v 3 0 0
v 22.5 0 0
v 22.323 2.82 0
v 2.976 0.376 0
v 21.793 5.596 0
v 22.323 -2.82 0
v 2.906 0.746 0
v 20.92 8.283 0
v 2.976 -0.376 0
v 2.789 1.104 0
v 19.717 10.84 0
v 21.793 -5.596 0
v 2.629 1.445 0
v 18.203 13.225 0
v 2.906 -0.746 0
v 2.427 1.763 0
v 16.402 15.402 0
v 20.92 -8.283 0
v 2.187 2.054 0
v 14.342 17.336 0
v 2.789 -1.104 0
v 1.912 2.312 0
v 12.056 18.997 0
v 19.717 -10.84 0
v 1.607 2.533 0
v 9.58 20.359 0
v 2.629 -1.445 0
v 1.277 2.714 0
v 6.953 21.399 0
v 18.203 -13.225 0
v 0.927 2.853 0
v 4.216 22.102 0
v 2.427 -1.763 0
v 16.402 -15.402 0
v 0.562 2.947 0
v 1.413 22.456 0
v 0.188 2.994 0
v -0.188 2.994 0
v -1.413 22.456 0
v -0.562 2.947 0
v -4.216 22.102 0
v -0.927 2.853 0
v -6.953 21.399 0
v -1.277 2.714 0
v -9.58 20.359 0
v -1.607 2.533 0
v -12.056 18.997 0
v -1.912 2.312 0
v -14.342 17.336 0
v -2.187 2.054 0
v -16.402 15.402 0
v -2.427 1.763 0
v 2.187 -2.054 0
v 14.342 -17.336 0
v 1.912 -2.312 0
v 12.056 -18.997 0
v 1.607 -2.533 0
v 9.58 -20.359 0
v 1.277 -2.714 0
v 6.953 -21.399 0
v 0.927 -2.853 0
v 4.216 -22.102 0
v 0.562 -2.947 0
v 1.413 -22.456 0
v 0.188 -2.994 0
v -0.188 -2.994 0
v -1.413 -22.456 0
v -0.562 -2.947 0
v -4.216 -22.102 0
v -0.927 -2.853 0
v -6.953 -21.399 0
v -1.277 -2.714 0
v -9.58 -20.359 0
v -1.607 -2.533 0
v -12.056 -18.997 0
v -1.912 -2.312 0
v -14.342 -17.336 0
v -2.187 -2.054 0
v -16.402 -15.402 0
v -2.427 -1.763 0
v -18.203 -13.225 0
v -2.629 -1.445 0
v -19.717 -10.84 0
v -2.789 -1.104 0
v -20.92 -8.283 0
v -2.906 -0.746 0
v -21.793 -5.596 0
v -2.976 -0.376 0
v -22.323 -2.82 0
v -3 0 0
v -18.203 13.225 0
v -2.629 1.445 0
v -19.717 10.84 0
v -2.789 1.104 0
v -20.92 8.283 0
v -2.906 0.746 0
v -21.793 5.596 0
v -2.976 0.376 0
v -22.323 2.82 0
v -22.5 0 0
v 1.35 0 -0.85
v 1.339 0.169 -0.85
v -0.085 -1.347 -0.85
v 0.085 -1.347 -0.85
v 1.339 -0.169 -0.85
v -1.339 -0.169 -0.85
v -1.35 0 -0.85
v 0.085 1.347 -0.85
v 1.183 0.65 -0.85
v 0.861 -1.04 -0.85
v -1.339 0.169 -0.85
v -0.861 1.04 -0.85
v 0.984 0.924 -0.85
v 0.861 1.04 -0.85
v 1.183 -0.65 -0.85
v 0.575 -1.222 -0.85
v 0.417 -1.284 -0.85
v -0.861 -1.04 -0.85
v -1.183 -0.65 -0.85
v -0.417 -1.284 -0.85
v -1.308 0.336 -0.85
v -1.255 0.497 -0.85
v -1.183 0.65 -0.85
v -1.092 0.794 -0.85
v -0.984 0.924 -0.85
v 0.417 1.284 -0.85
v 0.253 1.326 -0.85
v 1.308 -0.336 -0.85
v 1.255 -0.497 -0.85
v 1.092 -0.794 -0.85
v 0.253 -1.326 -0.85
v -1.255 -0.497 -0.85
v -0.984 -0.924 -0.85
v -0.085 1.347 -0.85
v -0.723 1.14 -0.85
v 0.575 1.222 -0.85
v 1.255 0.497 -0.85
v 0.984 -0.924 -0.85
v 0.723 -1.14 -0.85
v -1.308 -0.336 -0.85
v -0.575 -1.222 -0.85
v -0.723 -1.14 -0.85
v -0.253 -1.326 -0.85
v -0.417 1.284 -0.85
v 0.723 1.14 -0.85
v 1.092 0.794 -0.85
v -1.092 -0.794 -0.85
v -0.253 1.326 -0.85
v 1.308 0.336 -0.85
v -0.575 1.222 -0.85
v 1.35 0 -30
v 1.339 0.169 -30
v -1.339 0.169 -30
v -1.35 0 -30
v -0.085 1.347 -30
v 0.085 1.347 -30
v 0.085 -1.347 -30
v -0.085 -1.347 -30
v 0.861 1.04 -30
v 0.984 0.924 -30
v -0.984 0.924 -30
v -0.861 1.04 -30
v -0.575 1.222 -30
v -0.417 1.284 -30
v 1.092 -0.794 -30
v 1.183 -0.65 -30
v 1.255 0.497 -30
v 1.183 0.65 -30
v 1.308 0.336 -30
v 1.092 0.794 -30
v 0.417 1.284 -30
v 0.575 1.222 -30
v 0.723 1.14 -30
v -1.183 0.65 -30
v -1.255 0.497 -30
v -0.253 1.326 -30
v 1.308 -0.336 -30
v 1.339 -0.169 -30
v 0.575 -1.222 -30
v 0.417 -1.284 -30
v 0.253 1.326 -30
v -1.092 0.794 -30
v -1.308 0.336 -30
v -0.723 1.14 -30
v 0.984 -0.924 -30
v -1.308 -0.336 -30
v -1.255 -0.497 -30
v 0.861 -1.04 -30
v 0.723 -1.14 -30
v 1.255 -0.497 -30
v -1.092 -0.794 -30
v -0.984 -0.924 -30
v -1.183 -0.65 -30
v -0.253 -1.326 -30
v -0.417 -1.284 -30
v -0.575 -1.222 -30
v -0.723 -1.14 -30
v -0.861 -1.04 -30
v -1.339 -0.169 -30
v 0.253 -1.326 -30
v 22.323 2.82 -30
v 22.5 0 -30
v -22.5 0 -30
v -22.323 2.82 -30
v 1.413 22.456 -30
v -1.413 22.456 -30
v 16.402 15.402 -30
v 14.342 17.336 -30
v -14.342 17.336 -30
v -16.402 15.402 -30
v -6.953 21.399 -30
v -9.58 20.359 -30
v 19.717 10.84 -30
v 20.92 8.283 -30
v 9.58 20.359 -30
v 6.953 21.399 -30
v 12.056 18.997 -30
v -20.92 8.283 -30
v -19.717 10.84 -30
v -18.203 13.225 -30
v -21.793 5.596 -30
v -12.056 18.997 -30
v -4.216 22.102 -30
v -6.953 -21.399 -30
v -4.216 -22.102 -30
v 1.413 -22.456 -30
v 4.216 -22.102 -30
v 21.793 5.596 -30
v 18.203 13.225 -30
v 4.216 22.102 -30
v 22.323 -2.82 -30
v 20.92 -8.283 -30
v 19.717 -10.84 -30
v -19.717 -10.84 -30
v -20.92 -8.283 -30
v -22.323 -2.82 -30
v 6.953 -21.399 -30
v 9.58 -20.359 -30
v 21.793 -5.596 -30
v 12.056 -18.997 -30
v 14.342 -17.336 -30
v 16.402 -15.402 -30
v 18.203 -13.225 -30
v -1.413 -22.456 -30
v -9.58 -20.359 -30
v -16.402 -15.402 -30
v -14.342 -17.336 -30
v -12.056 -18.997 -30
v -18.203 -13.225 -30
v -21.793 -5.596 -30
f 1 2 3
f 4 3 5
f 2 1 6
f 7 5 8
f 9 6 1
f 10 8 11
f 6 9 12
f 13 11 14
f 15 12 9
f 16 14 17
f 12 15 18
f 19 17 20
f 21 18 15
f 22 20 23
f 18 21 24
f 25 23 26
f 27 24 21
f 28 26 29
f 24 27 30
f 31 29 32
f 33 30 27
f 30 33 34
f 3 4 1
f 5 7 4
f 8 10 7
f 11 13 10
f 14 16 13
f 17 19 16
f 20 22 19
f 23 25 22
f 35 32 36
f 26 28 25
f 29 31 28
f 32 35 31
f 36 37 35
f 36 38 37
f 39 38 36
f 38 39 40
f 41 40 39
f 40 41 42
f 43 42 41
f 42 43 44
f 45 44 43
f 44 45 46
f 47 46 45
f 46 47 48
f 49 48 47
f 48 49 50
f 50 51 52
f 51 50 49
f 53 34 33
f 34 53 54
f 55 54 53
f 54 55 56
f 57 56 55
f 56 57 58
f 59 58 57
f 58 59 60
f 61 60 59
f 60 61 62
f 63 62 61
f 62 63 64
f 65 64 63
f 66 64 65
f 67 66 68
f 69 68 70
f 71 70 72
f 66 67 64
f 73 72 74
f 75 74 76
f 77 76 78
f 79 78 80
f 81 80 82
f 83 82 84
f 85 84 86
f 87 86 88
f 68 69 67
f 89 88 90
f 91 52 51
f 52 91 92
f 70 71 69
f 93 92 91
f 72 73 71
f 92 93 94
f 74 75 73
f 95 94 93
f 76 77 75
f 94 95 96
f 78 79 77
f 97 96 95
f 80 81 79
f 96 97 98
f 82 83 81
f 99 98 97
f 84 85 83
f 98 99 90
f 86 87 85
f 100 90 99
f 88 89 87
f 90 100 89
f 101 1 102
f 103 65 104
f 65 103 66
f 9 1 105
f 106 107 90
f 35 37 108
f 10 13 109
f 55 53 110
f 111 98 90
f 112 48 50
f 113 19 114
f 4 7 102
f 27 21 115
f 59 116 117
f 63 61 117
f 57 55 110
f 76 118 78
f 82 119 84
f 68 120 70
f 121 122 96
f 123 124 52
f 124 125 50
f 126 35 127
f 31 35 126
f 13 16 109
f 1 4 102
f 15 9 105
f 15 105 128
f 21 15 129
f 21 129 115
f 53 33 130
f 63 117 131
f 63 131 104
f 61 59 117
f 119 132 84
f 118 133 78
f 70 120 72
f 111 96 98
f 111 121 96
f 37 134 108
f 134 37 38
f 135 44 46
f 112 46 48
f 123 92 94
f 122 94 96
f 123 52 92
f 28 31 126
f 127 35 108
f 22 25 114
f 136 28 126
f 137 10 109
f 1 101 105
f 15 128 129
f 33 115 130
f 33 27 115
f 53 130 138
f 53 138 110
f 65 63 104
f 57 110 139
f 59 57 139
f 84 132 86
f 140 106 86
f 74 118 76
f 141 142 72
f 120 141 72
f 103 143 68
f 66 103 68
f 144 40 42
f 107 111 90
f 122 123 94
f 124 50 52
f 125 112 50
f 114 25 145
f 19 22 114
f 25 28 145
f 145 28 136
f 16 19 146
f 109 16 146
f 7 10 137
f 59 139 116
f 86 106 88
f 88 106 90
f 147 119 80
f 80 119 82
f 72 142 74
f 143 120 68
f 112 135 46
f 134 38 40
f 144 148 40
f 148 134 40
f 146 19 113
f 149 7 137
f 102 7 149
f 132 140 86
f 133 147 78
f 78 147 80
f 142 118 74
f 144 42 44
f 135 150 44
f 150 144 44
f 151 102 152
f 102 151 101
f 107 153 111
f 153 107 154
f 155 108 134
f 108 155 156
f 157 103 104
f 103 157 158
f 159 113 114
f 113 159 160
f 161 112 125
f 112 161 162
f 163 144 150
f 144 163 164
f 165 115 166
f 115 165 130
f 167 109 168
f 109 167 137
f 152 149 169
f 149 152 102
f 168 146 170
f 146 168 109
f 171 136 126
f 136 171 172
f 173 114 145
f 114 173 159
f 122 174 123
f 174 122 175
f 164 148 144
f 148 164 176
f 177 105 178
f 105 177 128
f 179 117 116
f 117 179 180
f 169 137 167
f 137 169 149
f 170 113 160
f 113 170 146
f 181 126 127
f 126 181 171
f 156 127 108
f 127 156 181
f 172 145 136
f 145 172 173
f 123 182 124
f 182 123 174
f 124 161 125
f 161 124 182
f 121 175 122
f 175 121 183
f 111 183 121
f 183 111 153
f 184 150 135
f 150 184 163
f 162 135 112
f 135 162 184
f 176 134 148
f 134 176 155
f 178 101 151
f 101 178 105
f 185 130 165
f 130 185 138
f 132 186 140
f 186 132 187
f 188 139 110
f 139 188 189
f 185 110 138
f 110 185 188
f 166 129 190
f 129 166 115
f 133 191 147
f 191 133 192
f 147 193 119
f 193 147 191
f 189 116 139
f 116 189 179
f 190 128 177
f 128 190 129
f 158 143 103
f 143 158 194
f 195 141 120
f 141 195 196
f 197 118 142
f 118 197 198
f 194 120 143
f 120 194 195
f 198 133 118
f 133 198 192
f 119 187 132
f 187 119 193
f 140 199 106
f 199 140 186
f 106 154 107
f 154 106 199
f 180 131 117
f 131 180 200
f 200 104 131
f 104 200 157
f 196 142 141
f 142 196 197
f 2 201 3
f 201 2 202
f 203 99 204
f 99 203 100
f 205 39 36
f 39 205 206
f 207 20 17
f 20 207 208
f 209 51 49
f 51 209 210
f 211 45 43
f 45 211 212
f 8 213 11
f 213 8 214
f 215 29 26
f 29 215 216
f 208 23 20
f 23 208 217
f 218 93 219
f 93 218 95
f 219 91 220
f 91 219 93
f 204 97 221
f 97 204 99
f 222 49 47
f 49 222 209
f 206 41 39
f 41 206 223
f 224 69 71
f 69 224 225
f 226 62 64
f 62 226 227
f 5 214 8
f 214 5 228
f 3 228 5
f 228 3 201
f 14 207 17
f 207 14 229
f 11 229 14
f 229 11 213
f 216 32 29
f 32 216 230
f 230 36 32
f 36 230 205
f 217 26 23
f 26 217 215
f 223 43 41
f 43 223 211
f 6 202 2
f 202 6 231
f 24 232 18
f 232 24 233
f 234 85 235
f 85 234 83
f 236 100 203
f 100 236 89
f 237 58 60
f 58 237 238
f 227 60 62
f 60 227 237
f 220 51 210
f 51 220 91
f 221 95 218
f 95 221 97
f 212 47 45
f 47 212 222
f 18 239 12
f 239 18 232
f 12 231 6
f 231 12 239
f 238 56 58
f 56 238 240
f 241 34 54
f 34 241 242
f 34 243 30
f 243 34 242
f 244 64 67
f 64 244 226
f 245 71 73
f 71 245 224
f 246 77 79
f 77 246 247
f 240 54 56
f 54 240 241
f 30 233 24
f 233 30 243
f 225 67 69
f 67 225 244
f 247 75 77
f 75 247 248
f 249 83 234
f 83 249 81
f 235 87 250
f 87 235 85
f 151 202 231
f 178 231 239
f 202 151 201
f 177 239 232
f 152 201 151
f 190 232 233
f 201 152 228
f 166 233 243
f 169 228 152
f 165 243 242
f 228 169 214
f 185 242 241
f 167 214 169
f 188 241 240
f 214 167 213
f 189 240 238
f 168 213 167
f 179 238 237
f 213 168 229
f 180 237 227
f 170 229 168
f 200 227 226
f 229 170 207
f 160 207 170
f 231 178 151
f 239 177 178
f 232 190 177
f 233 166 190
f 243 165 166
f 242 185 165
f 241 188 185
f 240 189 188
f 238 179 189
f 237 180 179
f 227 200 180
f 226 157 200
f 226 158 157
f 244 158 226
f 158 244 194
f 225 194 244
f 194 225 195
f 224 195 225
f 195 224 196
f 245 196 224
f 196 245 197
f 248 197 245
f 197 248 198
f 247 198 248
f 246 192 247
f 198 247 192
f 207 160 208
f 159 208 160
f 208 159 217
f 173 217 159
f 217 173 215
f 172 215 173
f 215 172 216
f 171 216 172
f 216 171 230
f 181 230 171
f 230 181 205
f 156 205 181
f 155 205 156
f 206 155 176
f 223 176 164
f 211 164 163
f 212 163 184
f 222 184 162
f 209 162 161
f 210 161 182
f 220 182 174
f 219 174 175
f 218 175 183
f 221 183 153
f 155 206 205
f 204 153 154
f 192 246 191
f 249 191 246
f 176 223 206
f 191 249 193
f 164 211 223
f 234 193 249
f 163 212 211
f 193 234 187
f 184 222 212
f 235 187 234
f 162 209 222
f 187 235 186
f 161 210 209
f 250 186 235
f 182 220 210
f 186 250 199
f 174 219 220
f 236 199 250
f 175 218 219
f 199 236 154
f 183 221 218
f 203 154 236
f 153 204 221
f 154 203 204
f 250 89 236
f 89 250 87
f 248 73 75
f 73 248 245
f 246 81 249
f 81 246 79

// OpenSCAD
$fn = 50;

difference() {
	union() {
		translate(v = [0, 0, -30.0]) {
			cylinder(h = 30, r = 22.5);
		}
	}
	union() {
		translate(v = [0, 0, 0]) {
			rotate(a = [0, 0, 0]) {
				difference() {
					union() {
						translate(v = [0, 0, -33.0]) {
							cylinder(h = 33, r = 1.0);
						}
						translate(v = [0, 0, -0.85]) {
							cylinder(h = 0.85, r1 = 1.35, r2 = 3.0);
						}
						translate(v = [0, 0, -33.0]) {
							cylinder(h = 33, r = 1.35);
						}
						translate(v = [0, 0, -33.0]) {
							cylinder(h = 33, r = 1.0);
						}
					}
					union();
				}
			}
		}
	}
}
